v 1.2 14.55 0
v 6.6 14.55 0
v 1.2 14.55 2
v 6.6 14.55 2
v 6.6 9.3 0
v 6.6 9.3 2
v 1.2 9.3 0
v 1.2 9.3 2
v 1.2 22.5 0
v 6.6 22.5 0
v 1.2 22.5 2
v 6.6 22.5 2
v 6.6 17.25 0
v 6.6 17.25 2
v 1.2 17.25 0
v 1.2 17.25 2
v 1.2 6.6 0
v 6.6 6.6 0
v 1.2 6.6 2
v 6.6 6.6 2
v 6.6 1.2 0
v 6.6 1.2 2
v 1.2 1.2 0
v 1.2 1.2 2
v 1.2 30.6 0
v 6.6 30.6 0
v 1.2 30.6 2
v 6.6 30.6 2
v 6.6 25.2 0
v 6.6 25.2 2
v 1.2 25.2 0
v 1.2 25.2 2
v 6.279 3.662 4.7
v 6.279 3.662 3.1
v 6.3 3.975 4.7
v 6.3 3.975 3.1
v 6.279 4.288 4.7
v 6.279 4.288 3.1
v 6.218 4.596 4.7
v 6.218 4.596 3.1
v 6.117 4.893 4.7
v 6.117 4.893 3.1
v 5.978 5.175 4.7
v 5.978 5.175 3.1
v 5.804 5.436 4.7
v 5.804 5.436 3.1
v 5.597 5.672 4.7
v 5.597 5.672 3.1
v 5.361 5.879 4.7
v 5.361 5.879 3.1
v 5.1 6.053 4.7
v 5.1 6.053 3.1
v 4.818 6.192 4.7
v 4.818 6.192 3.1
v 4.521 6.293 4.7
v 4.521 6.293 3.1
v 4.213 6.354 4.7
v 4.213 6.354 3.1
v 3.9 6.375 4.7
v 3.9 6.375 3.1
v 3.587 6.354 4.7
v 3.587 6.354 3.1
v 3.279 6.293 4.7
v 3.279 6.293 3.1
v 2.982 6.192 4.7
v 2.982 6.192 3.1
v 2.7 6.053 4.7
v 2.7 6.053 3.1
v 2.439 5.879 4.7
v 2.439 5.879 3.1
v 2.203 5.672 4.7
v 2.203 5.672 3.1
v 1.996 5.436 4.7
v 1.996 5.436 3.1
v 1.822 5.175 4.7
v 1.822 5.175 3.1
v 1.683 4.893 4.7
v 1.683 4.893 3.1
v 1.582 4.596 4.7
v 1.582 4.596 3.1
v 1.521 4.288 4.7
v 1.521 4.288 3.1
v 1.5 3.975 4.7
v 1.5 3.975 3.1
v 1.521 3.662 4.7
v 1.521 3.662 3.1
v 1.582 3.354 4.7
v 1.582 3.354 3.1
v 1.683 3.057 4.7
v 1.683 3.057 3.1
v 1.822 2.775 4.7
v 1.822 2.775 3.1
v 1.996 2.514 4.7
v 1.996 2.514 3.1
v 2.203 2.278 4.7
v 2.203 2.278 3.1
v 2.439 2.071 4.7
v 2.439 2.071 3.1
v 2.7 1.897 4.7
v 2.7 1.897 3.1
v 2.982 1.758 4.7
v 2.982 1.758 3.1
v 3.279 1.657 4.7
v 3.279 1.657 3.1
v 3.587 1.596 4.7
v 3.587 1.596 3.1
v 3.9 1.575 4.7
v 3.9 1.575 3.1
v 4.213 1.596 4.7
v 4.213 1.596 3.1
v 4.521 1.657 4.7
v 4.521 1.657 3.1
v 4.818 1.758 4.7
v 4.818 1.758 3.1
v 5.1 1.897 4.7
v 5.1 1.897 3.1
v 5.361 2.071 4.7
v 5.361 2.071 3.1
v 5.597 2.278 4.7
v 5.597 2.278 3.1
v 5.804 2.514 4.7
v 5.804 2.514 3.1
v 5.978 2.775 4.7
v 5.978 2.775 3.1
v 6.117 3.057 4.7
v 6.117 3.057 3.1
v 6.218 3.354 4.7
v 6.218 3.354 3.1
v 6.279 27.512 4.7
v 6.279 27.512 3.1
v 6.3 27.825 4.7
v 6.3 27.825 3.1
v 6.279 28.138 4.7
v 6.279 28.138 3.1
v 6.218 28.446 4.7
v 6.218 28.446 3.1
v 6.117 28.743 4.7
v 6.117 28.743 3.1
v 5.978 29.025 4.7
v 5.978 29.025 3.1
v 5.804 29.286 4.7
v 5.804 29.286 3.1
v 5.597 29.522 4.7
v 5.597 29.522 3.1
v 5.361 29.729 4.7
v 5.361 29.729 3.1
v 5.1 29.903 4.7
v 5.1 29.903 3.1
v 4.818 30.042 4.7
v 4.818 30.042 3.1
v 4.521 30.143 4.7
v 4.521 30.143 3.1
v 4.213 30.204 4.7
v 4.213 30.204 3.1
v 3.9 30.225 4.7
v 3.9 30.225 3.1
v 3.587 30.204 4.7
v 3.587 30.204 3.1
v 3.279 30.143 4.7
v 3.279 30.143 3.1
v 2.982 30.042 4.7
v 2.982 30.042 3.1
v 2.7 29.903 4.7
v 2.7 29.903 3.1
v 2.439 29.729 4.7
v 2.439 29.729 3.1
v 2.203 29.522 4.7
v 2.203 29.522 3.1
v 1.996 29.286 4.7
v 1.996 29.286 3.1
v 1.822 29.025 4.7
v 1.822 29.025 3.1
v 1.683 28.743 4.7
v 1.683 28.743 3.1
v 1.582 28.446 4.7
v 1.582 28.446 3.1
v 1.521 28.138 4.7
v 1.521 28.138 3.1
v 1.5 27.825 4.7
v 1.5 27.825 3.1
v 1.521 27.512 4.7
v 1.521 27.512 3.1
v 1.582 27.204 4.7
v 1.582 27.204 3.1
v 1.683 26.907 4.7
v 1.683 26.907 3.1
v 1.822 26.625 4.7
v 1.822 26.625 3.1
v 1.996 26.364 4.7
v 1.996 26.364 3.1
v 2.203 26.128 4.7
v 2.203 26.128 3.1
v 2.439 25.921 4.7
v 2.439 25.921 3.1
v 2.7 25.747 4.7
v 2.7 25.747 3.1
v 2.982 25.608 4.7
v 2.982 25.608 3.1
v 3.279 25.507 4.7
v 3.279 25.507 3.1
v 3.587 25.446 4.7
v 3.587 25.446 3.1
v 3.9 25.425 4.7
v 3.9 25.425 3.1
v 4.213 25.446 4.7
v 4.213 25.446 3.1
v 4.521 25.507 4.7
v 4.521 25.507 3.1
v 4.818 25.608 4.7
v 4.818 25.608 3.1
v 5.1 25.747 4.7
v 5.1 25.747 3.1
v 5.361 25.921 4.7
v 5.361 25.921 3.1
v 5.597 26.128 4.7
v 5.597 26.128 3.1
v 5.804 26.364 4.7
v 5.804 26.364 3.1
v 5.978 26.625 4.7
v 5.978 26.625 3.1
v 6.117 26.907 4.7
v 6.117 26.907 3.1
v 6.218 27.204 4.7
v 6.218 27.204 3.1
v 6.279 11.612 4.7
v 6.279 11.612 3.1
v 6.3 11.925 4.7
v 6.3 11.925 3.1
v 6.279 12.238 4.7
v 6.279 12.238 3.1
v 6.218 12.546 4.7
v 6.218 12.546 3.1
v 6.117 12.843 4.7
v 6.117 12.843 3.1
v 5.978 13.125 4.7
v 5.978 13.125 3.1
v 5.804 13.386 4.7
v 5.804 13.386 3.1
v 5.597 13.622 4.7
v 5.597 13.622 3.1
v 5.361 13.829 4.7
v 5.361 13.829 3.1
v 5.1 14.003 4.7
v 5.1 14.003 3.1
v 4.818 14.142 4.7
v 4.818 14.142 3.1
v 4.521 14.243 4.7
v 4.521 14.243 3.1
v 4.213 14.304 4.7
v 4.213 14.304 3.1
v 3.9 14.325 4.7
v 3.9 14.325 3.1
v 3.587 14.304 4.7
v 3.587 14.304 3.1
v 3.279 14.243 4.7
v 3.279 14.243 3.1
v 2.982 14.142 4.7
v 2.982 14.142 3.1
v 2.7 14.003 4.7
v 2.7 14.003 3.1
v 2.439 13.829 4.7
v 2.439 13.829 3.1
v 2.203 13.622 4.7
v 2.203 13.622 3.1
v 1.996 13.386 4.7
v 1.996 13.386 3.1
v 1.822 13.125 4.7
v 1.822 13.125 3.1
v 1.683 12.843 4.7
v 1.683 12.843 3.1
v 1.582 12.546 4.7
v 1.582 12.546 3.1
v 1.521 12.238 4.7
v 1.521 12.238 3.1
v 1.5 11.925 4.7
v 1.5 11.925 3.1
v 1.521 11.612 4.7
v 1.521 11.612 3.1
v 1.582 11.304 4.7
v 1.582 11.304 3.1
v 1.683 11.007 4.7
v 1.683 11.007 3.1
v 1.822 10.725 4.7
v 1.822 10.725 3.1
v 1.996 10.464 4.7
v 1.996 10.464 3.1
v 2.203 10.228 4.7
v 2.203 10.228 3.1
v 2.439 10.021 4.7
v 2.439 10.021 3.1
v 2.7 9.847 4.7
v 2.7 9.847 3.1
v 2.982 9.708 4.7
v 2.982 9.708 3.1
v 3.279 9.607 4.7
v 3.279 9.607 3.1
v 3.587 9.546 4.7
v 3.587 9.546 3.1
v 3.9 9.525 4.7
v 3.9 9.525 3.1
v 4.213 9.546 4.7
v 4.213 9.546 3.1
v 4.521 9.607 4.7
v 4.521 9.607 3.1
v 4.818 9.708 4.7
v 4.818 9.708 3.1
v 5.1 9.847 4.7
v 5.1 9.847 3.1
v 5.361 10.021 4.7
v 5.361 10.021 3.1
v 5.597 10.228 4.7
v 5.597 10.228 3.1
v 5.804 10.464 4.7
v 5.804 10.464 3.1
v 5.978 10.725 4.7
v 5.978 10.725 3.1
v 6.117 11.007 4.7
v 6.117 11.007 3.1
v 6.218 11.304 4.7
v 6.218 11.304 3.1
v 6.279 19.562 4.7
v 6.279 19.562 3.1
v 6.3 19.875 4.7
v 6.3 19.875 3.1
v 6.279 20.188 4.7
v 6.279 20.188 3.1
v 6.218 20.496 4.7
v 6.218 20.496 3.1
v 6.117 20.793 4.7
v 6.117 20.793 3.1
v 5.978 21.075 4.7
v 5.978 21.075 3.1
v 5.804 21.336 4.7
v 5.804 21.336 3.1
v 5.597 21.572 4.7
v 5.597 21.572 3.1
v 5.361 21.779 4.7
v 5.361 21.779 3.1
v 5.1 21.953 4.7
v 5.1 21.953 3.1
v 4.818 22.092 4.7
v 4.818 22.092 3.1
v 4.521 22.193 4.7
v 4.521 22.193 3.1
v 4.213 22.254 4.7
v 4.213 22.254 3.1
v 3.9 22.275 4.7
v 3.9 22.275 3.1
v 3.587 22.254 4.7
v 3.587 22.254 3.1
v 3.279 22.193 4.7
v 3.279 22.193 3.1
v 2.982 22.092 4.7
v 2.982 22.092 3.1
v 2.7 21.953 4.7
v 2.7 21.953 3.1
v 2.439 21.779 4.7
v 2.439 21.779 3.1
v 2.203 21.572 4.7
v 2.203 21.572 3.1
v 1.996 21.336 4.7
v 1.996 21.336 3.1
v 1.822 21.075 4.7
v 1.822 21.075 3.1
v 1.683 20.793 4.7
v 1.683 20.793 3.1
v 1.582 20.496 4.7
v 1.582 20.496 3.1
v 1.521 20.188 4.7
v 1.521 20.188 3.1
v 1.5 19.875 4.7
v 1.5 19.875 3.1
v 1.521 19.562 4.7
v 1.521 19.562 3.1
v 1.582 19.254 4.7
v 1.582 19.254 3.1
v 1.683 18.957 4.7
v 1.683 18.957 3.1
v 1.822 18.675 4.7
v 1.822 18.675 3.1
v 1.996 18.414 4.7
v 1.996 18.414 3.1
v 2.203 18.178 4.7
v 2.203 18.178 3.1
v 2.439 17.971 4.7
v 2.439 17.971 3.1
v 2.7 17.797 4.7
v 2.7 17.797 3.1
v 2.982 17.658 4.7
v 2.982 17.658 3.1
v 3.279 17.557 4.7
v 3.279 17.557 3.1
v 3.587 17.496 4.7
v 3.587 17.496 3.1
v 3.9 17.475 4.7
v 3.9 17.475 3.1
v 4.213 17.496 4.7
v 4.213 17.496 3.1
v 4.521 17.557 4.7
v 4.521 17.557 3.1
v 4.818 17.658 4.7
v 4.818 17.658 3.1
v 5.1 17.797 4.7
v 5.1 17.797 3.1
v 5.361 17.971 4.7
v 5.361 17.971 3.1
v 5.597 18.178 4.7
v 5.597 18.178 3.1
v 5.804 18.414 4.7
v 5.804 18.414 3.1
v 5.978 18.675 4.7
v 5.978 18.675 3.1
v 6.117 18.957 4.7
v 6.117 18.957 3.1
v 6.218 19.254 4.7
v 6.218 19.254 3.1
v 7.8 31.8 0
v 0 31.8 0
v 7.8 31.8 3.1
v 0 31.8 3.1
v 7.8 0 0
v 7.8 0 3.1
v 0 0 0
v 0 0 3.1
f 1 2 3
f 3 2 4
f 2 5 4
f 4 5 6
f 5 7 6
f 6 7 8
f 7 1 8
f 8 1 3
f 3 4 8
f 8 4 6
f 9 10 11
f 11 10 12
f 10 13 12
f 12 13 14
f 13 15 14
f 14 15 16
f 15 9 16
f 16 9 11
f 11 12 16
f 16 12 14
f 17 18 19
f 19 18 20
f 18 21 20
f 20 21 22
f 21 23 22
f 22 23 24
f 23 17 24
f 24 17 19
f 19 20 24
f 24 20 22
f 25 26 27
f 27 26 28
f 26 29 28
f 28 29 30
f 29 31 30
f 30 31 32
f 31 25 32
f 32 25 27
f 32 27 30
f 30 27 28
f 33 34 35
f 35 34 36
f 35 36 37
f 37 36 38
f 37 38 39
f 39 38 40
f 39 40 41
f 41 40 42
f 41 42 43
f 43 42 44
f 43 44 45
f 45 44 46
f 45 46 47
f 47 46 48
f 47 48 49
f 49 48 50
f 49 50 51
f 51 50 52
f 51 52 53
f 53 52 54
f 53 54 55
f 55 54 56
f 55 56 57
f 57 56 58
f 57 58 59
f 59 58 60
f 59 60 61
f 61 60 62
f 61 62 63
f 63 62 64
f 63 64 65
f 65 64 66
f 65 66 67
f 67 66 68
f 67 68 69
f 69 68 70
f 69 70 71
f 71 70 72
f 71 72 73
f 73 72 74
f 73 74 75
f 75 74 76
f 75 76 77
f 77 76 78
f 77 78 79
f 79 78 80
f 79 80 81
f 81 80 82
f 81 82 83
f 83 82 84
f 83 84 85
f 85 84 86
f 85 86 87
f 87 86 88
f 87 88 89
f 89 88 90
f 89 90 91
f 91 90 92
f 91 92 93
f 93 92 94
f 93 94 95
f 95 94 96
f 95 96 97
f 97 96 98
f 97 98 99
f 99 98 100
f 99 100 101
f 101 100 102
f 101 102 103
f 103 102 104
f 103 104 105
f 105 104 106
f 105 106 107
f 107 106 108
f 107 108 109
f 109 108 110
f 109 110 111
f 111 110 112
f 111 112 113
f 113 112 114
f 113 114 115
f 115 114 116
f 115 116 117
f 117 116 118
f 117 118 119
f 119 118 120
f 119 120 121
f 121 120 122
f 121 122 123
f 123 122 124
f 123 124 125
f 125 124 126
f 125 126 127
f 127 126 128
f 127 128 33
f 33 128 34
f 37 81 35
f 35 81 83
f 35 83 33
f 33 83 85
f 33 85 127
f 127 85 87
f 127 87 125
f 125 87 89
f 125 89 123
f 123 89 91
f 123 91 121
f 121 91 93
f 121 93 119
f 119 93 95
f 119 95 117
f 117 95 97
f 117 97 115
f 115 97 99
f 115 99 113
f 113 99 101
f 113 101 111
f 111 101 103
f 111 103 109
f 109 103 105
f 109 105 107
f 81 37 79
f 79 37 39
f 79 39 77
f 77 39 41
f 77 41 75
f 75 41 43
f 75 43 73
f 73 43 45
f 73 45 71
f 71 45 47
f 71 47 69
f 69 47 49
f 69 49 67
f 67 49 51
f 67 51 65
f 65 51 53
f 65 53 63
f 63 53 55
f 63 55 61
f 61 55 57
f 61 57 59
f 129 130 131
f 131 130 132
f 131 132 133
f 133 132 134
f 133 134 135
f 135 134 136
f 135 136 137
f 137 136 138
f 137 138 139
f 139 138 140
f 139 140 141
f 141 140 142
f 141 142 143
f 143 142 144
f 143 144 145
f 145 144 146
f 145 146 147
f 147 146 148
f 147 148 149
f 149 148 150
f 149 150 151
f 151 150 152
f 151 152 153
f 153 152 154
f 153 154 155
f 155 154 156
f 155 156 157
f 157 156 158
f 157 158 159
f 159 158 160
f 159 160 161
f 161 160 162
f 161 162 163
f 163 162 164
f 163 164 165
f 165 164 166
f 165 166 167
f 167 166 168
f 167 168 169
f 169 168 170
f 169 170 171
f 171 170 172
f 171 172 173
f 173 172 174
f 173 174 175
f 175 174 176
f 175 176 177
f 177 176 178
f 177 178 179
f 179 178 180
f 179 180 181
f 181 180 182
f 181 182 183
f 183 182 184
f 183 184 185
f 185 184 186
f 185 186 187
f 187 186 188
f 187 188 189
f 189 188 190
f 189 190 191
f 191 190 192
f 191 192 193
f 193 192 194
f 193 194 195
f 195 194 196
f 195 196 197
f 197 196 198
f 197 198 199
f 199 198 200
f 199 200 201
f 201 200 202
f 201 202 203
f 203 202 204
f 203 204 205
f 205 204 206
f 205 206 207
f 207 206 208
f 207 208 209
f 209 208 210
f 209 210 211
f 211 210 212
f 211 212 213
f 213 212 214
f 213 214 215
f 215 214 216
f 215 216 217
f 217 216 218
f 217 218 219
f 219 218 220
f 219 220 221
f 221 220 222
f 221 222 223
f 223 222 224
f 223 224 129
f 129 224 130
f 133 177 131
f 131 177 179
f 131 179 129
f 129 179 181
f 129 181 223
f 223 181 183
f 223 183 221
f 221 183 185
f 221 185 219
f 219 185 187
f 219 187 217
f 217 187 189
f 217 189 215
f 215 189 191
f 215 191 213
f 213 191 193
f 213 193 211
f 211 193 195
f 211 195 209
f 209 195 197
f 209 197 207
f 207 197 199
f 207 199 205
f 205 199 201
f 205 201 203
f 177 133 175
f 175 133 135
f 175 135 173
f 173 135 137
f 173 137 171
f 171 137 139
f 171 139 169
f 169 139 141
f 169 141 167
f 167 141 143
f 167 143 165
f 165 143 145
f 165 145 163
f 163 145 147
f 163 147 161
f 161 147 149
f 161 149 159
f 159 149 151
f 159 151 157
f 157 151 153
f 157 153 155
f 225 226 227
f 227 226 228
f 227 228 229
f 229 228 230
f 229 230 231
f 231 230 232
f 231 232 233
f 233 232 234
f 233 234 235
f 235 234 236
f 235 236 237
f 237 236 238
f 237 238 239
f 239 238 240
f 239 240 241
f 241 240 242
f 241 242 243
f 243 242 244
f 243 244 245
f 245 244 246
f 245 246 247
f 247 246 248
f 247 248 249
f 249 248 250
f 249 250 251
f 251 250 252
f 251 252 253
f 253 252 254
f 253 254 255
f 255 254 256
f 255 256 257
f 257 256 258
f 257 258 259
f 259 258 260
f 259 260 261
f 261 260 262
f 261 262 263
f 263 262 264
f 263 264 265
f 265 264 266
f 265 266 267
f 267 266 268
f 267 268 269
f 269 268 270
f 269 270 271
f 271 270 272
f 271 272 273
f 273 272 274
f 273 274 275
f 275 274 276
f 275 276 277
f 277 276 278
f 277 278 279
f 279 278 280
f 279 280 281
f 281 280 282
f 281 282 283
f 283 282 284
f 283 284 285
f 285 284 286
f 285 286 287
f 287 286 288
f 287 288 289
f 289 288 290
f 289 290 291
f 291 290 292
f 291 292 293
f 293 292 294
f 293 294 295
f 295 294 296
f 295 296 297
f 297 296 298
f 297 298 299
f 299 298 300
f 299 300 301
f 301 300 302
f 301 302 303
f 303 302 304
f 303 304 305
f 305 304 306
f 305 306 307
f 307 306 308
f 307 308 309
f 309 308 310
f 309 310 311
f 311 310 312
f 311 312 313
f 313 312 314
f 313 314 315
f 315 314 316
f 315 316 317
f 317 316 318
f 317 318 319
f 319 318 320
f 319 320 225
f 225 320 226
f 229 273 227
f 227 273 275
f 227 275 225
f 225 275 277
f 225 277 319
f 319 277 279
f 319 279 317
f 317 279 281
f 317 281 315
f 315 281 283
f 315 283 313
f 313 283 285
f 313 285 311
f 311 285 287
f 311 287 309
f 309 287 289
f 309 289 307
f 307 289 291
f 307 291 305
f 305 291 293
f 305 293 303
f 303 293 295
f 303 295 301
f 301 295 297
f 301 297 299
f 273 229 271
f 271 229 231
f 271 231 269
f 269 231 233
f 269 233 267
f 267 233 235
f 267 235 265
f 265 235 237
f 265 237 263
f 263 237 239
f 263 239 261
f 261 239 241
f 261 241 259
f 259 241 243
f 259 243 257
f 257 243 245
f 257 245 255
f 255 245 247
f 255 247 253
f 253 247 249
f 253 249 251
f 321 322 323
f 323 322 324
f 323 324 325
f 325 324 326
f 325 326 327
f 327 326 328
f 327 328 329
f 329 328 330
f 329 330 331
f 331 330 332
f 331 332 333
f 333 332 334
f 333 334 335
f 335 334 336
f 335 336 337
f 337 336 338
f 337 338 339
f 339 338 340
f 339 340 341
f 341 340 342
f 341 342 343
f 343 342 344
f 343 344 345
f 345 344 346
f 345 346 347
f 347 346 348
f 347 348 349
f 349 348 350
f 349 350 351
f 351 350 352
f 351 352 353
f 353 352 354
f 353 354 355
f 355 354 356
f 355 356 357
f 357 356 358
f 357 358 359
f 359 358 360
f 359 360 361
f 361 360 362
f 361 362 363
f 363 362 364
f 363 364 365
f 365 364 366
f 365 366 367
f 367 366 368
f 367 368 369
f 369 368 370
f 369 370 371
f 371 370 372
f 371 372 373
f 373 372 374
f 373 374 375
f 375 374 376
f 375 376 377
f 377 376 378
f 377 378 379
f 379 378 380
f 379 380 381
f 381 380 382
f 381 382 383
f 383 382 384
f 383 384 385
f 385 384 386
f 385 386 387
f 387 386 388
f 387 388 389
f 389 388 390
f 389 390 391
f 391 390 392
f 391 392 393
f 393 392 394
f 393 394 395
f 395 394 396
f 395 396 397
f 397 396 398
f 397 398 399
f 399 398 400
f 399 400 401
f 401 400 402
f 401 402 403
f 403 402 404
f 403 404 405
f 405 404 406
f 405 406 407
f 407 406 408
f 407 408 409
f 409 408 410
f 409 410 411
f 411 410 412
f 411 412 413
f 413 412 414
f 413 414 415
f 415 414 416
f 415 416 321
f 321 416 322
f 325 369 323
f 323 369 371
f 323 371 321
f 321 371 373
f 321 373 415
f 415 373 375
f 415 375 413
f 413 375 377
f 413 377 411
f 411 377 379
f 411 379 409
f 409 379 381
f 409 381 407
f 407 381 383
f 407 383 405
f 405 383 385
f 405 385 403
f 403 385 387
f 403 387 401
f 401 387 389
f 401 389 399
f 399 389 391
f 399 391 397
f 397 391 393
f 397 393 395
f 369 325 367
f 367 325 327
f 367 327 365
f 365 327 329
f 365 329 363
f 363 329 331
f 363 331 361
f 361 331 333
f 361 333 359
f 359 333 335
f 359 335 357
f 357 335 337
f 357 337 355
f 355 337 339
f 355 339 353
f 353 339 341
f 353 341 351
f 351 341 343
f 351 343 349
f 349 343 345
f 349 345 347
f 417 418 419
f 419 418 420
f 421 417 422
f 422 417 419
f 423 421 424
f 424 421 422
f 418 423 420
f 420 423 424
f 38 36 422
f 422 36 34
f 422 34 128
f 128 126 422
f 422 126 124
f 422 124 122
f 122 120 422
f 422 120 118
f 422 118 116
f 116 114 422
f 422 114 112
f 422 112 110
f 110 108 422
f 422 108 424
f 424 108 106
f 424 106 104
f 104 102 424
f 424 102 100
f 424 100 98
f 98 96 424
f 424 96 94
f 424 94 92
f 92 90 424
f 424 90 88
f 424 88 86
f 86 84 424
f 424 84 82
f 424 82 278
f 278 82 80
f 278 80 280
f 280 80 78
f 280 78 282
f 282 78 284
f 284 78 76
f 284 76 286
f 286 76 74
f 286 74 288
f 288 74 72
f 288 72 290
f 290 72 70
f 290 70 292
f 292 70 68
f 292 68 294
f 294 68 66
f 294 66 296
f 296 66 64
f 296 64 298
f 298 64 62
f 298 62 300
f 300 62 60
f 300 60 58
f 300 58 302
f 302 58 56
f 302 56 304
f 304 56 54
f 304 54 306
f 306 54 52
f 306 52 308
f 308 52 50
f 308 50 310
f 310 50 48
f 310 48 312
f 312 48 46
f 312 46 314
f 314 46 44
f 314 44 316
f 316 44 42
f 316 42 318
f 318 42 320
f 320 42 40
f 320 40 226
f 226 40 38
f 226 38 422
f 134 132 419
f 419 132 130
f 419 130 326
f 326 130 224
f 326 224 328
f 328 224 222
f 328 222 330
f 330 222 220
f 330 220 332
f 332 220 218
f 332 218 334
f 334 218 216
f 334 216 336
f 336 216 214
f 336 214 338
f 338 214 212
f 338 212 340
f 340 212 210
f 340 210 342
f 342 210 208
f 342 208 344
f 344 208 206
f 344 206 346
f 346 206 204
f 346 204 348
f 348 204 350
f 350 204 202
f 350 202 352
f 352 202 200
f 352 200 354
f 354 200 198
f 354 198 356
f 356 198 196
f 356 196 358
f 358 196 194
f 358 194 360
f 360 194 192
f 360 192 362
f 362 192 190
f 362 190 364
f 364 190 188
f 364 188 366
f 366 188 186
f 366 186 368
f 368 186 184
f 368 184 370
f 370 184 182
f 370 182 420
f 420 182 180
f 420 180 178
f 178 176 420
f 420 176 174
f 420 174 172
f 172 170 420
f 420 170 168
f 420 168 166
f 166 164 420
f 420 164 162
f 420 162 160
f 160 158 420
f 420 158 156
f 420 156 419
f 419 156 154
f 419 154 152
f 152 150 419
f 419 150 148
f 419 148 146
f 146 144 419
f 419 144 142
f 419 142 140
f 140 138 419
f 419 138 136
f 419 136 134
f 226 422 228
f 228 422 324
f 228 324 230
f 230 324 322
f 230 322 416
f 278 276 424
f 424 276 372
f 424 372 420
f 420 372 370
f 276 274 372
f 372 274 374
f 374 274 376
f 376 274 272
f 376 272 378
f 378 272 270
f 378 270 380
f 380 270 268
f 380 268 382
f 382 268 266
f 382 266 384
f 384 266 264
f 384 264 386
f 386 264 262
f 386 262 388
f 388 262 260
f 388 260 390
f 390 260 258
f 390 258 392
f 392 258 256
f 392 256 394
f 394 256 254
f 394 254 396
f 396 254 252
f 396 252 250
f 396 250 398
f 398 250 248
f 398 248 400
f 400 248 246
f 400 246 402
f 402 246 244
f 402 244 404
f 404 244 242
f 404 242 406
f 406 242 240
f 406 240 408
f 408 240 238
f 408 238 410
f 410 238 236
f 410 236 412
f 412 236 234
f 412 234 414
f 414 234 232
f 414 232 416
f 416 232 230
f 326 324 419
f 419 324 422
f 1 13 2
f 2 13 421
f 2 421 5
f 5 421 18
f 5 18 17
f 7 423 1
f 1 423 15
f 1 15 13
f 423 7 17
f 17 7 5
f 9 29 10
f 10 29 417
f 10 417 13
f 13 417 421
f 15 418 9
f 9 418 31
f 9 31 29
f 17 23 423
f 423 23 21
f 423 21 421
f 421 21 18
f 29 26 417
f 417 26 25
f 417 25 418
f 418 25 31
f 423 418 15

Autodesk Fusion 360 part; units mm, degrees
sketch "Sketch1" plane through (0, 0, 0) normal (0, 0, 1) x (1, 0, 0)
  line L0 (0, 0) -> (7.8, 0)
  line L1 (7.8, 0) -> (7.8, 31.8)
  line L2 (7.8, 31.8) -> (0, 31.8)
  line L3 (0, 31.8) -> (0, 0)
  dimension "d1" = 7.8
  dimension "d2" = 31.8
extrude "Extrude1" add sketch "Sketch1" along normal blind 3.1
sketch "Sketch2" plane through (0, 0, 0) normal (0, 0, -1) x (1, 0, 0)
  line L0 (0, 0) -> (0, -31.8)
  line L1 (0, -31.8) -> (7.8, -31.8)
  line L2 (7.8, -31.8) -> (7.8, 0)
  line L3 (7.8, 0) -> (0, 0)
  line L4 (1.2, -1.2) -> (6.6, -1.2)
  line L5 (6.6, -1.2) -> (6.6, -30.6)
  line L6 (6.6, -30.6) -> (1.2, -30.6)
  line L7 (1.2, -30.6) -> (1.2, -1.2)
  line L8 (-5, -7.95) -> (12, -7.95) construction
  line L9 (-5, -15.9) -> (12, -15.9) construction
  line L10 (-5, -23.85) -> (12, -23.85) construction
  line L11 (1.2, -6.6) -> (6.6, -6.6)
  line L12 (1.2, -9.3) -> (6.6, -9.3)
  line L13 (1.2, -14.55) -> (6.6, -14.55)
  line L14 (1.2, -17.25) -> (6.6, -17.25)
  line L15 (1.2, -22.5) -> (6.6, -22.5)
  line L16 (1.2, -25.2) -> (6.6, -25.2)
  dimension "d5" = 1.2
  dimension "d6" = 1.2
  dimension "d7" = 1.2
  dimension "d8" = 1.2
  dimension "d38" = 7.95
  dimension "d39" = 7.95
  dimension "d40" = 7.95
  dimension "d41" = 1.35
  dimension "d42" = 2.7
  dimension "d43" = 1.35
  dimension "d44" = 2.7
  dimension "d45" = 1.35
  dimension "d46" = 2.7
sketch "Sketch3" plane through (0, 0, 3.1) normal (0, 0, 1) x (-1, 0, 0)
  line L0 (0, -31.8) -> (0, 0)
  line L1 (0, 0) -> (-7.8, 0)
  line L2 (-7.8, 0) -> (-7.8, -31.8)
  line L3 (-7.8, -31.8) -> (0, -31.8)
  circle A0 centre (-3.9, -27.825) radius 2.4
  circle A1 centre (-3.9, -19.875) radius 2.4
  circle A2 centre (-3.9, -11.925) radius 2.4
  circle A3 centre (-3.9, -3.975) radius 2.4
  dimension "d11" = 4.8
  dimension "d12" = 4.8
  dimension "d13" = 4.8
  dimension "d14" = 4.8
  dimension "d15" = 3.9
  dimension "d16" = 7.95
  dimension "d17" = 7.95
  dimension "d18" = 7.95
  dimension "d19" = 3.975
  dimension "d37" = 3.9
extrude "Extrude3" add sketch "Sketch3" along normal blind 1.6 contours A0 | A1 | A2 | A3
extrude "Extrude6" cut sketch "Sketch2" against normal blind 2 contours L4 L5 L7 L11 | L5 L7 L12 L13 | L5 L7 L14 L15 | L5 L6 L7 L16
